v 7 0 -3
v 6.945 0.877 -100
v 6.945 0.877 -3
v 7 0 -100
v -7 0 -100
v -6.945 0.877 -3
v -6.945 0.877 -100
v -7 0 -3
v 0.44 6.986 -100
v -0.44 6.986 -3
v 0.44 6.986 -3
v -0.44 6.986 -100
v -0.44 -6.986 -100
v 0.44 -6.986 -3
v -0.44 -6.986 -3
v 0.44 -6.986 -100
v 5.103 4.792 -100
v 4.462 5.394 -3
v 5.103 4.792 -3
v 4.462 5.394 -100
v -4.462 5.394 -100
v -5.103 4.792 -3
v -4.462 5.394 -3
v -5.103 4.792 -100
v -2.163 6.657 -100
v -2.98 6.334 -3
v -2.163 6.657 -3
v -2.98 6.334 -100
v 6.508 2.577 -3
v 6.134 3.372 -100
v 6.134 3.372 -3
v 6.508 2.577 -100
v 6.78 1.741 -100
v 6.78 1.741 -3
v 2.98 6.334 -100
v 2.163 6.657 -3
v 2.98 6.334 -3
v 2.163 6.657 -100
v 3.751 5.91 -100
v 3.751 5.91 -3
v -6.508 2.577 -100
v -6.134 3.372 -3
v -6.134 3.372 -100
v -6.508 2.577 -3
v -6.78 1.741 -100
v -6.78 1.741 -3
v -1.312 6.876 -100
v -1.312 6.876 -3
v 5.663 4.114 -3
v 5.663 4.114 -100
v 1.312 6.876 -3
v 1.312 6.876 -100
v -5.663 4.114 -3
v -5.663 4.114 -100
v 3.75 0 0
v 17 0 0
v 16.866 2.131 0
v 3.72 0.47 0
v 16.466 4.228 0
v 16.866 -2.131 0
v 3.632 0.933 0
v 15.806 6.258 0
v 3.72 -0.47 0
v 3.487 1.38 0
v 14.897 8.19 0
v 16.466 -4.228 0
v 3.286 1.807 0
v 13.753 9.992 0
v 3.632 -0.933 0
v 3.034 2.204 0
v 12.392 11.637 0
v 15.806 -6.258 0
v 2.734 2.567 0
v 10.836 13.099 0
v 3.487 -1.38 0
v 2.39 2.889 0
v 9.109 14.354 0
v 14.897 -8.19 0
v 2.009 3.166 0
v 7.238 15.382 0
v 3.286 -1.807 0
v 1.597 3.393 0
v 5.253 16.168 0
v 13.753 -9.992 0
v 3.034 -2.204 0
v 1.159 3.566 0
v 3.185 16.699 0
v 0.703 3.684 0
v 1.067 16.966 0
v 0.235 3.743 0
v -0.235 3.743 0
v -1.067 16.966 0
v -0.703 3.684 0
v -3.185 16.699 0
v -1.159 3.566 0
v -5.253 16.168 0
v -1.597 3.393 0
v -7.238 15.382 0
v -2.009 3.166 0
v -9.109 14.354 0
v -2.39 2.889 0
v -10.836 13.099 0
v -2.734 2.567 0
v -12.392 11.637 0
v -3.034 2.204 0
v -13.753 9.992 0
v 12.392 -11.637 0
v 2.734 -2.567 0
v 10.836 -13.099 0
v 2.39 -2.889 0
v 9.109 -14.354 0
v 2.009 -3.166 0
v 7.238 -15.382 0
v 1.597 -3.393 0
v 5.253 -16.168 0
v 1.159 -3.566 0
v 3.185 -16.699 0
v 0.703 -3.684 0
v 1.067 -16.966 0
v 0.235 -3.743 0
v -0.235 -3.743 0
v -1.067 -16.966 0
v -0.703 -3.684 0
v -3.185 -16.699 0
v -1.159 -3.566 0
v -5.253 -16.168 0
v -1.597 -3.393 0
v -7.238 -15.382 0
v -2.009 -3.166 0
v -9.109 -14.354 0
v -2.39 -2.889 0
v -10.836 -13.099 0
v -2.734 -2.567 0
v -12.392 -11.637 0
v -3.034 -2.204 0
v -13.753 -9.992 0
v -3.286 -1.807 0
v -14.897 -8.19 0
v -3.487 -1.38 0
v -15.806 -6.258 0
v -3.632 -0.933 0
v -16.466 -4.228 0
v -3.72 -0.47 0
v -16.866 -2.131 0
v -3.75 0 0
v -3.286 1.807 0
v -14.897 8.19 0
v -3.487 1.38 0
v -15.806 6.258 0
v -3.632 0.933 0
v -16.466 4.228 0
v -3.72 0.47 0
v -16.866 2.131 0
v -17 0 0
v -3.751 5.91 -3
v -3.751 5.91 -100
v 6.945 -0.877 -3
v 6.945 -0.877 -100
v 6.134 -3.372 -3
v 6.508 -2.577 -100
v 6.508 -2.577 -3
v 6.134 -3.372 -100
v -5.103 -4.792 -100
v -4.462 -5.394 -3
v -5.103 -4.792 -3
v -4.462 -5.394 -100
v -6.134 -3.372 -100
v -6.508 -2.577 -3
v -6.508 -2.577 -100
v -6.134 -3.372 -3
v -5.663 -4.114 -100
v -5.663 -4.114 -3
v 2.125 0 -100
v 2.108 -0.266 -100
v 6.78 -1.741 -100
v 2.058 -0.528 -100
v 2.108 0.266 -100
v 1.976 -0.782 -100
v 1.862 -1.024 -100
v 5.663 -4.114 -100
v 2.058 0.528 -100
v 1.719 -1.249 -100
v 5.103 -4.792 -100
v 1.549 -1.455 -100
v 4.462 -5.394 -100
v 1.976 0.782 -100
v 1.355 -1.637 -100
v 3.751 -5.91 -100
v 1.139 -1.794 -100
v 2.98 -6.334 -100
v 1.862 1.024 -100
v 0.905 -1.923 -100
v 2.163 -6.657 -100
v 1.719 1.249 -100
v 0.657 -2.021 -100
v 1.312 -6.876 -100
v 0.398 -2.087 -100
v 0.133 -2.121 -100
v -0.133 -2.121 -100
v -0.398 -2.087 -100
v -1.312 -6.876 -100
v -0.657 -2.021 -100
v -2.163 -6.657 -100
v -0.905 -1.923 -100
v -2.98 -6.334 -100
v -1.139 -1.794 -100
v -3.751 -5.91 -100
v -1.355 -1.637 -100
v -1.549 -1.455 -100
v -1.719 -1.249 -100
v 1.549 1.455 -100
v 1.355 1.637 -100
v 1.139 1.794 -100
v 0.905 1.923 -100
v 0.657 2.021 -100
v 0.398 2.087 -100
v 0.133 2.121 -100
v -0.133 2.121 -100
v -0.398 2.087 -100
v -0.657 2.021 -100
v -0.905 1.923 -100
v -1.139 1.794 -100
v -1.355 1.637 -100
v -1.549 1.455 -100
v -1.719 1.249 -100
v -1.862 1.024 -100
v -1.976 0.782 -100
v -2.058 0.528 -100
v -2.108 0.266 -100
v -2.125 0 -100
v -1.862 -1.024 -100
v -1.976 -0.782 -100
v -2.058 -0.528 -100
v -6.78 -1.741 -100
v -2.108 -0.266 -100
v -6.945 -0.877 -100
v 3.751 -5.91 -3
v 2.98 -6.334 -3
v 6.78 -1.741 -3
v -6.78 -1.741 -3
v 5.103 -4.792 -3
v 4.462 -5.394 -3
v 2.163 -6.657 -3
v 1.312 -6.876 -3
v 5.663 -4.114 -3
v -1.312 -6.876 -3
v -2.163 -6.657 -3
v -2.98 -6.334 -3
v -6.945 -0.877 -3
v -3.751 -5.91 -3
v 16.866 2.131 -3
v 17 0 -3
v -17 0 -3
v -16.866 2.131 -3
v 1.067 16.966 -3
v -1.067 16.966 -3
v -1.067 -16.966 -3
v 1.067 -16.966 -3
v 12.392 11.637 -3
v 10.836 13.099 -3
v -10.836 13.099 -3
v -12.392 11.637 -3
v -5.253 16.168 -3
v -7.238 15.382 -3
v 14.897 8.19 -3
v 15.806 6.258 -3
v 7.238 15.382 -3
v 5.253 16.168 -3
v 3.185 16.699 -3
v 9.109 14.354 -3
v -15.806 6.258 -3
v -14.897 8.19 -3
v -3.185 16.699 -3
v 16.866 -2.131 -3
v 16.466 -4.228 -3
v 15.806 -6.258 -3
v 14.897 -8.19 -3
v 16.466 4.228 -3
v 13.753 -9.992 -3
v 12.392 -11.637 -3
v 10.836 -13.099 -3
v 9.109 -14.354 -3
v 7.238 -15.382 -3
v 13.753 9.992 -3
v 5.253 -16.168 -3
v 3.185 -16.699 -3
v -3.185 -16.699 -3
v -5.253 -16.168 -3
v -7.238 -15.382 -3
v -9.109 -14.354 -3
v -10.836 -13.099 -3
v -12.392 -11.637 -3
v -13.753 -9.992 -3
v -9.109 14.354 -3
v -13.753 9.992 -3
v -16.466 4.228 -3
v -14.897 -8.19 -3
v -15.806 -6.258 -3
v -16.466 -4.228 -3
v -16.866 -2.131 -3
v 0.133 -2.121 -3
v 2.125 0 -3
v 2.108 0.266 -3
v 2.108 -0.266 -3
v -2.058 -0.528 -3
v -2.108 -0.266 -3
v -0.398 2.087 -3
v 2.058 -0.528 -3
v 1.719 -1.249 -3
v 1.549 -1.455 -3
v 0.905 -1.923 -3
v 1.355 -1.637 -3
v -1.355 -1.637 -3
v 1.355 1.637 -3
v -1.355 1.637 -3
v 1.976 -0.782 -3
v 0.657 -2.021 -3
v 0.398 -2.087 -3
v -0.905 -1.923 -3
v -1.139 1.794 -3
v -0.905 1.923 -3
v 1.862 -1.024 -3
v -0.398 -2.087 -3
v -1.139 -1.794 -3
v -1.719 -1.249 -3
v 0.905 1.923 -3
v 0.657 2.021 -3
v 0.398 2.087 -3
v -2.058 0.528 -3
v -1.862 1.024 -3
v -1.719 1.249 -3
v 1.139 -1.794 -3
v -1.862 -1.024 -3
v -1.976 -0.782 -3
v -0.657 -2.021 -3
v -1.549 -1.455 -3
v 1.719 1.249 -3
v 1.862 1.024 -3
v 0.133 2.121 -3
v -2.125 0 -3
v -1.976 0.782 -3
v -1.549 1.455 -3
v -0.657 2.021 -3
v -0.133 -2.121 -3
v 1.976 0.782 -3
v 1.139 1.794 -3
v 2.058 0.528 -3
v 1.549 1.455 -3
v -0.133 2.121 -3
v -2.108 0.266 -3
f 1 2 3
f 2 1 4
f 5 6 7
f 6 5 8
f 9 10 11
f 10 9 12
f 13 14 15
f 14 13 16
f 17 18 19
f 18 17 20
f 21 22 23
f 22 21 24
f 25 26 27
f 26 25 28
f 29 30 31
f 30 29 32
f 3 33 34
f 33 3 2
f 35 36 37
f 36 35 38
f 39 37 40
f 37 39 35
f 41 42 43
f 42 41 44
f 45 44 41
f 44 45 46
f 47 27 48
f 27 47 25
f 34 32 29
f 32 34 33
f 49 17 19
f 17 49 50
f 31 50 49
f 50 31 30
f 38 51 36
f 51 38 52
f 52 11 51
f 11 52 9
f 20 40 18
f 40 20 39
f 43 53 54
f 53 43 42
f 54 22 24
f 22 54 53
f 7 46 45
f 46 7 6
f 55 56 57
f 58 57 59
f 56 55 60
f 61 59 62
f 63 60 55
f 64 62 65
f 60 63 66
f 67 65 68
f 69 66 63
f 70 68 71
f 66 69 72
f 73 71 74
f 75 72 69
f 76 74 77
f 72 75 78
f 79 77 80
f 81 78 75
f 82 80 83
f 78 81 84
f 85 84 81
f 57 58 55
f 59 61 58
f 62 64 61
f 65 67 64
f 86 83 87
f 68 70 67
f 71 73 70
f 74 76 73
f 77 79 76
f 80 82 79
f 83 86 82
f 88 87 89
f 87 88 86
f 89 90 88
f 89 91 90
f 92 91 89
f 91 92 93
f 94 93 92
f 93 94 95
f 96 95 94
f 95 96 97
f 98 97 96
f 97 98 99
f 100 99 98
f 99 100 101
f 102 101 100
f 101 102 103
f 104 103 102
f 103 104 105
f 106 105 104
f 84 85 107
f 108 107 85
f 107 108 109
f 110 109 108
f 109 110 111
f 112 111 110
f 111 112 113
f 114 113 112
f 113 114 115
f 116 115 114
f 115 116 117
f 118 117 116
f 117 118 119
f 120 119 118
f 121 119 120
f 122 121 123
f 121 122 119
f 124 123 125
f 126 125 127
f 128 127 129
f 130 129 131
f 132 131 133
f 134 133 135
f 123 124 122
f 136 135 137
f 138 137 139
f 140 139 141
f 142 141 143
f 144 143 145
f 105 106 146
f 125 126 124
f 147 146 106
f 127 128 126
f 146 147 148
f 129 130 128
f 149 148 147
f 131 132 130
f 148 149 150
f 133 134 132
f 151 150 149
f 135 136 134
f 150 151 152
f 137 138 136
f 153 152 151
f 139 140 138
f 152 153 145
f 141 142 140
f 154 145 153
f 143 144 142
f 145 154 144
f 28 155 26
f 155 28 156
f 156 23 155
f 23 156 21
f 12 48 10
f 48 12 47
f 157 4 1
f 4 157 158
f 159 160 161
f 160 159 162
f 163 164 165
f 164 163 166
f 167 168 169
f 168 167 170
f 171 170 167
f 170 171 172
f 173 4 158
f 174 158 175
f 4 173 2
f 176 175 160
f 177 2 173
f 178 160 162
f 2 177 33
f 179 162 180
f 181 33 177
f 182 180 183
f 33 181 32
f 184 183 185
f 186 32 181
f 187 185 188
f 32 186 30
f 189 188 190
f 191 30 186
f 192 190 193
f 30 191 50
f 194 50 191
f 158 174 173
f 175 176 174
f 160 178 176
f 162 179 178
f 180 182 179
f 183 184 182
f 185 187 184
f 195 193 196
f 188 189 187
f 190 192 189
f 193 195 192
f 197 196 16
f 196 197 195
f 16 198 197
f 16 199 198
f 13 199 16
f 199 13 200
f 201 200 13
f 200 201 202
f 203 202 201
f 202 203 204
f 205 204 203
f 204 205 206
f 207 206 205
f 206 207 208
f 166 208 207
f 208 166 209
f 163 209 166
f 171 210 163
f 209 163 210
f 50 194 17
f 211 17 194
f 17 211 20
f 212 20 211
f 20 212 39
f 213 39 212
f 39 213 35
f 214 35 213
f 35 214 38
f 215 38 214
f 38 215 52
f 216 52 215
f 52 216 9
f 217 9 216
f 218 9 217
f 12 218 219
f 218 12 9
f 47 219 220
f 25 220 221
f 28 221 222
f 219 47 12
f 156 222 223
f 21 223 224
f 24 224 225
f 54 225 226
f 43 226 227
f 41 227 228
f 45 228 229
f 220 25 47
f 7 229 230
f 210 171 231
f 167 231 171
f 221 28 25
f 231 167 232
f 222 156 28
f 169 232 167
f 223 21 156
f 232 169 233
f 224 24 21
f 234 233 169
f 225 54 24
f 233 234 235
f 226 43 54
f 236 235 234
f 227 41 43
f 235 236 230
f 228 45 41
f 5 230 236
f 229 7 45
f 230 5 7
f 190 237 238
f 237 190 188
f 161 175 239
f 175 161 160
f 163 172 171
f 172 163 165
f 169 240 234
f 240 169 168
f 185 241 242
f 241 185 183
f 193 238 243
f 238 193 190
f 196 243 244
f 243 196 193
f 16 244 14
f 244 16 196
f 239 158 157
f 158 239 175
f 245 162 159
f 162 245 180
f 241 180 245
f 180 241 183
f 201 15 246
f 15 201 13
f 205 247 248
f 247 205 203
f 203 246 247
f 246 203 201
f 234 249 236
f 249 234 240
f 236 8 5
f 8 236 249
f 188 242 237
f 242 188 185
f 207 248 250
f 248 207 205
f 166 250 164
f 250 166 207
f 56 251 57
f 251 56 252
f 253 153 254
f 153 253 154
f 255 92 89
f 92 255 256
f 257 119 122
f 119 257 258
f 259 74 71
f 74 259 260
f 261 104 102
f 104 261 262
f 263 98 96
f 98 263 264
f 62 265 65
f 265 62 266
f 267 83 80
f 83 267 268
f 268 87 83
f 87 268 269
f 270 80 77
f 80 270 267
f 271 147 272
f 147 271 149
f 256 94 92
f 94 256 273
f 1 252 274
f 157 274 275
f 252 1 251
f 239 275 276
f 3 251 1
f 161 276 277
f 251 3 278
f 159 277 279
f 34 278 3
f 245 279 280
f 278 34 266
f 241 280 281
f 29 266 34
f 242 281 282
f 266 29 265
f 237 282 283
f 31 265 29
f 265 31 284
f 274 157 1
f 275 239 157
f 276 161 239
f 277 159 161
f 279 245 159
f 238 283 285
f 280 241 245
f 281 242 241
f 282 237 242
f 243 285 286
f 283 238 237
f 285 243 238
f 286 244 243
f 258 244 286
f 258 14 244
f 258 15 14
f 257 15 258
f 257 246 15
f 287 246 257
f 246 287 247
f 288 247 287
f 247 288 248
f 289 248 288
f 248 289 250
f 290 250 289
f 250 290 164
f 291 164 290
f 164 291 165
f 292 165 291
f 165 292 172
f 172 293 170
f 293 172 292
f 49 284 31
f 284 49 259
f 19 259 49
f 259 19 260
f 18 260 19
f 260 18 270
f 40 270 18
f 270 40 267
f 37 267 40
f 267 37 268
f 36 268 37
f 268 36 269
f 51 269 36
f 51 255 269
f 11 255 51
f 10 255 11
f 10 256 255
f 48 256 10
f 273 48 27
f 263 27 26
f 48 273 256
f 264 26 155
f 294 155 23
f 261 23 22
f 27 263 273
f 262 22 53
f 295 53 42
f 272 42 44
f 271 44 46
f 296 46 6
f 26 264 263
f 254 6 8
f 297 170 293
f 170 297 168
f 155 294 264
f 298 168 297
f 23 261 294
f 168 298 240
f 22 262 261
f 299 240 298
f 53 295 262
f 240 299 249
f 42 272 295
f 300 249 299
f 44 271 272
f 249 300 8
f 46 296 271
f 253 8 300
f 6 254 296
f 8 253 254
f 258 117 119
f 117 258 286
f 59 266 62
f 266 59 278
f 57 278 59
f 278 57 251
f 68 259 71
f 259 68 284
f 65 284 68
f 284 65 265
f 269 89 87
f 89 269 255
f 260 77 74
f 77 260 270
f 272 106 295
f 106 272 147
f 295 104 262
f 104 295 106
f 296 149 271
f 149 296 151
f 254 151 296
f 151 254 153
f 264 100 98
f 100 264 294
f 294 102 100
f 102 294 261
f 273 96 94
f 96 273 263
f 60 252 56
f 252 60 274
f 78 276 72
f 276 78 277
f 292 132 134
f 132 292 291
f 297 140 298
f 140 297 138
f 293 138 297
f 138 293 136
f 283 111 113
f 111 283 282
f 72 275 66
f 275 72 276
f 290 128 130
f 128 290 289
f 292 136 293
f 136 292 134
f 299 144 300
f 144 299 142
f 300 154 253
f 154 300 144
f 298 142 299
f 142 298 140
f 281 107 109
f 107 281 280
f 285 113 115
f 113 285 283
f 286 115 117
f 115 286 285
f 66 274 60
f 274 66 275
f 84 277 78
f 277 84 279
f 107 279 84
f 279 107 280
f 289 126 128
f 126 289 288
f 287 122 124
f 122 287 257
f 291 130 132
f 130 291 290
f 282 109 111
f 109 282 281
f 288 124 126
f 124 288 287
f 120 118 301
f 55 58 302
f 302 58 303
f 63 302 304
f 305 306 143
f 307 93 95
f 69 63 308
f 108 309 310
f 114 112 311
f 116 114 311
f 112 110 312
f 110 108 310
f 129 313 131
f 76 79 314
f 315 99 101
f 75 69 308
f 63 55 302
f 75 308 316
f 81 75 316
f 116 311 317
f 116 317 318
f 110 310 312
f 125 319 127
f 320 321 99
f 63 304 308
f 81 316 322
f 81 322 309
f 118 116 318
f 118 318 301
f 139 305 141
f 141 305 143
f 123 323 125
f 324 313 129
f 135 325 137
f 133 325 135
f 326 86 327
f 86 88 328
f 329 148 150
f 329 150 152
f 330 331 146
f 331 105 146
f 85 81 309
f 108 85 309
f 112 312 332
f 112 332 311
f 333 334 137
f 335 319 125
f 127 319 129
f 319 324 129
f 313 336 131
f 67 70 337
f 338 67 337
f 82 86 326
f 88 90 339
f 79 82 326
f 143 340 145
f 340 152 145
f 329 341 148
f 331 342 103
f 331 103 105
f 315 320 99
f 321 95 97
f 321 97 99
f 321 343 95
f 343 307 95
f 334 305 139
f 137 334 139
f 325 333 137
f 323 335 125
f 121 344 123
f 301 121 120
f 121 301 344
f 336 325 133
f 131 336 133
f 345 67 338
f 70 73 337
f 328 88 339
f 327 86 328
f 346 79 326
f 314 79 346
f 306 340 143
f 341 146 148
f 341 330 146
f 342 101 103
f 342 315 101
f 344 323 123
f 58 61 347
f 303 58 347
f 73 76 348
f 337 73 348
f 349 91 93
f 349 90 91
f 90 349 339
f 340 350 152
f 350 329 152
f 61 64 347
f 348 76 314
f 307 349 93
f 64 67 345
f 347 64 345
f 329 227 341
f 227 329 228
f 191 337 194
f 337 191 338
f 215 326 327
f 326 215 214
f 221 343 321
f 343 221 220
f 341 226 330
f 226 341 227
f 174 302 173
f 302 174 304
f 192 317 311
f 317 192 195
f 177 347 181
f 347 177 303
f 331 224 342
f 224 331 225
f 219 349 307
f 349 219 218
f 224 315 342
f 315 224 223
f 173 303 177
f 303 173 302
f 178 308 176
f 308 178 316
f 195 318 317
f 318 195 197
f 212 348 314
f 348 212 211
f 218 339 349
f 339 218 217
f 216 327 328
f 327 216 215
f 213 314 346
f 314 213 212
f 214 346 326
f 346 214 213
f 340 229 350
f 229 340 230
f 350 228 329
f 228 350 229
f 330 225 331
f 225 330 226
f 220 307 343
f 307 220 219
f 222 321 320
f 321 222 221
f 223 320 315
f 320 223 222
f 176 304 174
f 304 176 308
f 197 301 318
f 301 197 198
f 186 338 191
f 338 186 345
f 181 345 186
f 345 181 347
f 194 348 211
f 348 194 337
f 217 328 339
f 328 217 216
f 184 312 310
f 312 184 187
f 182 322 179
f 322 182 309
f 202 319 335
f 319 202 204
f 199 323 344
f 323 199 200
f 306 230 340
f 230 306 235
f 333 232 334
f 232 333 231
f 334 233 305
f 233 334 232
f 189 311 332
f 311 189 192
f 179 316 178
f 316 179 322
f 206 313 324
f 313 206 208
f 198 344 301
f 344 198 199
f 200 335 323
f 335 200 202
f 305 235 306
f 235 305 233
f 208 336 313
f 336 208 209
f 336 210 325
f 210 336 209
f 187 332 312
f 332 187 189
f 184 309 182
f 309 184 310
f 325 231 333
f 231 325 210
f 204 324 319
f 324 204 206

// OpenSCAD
$fn = 50;


difference() {
	union() {
		translate(v = [0, 0, -100.0000000000]) {
			cylinder(h = 100, r = 7.0000000000);
		}
		translate(v = [0, 0, -3.0000000000]) {
			cylinder(h = 3, r = 17.0000000000);
		}
	}
	union() {
		translate(v = [0, 0, 0]) {
			rotate(a = [0, 0, 0]) {
				difference() {
					union() {
						#translate(v = [0, 0, -100.0000000000]) {
							cylinder(h = 100, r = 2.0000000000);
						}
						#translate(v = [0, 0, -3]) {
							cylinder(h = 3, r1 = 2.1250000000, r2 = 3.7500000000);
						}
						#translate(v = [0, 0, -100.0000000000]) {
							cylinder(h = 100, r = 2.1250000000);
						}
						#translate(v = [0, 0, -100.0000000000]) {
							cylinder(h = 100, r = 2.0000000000);
						}
					}
					union();
				}
			}
		}
	}
}
